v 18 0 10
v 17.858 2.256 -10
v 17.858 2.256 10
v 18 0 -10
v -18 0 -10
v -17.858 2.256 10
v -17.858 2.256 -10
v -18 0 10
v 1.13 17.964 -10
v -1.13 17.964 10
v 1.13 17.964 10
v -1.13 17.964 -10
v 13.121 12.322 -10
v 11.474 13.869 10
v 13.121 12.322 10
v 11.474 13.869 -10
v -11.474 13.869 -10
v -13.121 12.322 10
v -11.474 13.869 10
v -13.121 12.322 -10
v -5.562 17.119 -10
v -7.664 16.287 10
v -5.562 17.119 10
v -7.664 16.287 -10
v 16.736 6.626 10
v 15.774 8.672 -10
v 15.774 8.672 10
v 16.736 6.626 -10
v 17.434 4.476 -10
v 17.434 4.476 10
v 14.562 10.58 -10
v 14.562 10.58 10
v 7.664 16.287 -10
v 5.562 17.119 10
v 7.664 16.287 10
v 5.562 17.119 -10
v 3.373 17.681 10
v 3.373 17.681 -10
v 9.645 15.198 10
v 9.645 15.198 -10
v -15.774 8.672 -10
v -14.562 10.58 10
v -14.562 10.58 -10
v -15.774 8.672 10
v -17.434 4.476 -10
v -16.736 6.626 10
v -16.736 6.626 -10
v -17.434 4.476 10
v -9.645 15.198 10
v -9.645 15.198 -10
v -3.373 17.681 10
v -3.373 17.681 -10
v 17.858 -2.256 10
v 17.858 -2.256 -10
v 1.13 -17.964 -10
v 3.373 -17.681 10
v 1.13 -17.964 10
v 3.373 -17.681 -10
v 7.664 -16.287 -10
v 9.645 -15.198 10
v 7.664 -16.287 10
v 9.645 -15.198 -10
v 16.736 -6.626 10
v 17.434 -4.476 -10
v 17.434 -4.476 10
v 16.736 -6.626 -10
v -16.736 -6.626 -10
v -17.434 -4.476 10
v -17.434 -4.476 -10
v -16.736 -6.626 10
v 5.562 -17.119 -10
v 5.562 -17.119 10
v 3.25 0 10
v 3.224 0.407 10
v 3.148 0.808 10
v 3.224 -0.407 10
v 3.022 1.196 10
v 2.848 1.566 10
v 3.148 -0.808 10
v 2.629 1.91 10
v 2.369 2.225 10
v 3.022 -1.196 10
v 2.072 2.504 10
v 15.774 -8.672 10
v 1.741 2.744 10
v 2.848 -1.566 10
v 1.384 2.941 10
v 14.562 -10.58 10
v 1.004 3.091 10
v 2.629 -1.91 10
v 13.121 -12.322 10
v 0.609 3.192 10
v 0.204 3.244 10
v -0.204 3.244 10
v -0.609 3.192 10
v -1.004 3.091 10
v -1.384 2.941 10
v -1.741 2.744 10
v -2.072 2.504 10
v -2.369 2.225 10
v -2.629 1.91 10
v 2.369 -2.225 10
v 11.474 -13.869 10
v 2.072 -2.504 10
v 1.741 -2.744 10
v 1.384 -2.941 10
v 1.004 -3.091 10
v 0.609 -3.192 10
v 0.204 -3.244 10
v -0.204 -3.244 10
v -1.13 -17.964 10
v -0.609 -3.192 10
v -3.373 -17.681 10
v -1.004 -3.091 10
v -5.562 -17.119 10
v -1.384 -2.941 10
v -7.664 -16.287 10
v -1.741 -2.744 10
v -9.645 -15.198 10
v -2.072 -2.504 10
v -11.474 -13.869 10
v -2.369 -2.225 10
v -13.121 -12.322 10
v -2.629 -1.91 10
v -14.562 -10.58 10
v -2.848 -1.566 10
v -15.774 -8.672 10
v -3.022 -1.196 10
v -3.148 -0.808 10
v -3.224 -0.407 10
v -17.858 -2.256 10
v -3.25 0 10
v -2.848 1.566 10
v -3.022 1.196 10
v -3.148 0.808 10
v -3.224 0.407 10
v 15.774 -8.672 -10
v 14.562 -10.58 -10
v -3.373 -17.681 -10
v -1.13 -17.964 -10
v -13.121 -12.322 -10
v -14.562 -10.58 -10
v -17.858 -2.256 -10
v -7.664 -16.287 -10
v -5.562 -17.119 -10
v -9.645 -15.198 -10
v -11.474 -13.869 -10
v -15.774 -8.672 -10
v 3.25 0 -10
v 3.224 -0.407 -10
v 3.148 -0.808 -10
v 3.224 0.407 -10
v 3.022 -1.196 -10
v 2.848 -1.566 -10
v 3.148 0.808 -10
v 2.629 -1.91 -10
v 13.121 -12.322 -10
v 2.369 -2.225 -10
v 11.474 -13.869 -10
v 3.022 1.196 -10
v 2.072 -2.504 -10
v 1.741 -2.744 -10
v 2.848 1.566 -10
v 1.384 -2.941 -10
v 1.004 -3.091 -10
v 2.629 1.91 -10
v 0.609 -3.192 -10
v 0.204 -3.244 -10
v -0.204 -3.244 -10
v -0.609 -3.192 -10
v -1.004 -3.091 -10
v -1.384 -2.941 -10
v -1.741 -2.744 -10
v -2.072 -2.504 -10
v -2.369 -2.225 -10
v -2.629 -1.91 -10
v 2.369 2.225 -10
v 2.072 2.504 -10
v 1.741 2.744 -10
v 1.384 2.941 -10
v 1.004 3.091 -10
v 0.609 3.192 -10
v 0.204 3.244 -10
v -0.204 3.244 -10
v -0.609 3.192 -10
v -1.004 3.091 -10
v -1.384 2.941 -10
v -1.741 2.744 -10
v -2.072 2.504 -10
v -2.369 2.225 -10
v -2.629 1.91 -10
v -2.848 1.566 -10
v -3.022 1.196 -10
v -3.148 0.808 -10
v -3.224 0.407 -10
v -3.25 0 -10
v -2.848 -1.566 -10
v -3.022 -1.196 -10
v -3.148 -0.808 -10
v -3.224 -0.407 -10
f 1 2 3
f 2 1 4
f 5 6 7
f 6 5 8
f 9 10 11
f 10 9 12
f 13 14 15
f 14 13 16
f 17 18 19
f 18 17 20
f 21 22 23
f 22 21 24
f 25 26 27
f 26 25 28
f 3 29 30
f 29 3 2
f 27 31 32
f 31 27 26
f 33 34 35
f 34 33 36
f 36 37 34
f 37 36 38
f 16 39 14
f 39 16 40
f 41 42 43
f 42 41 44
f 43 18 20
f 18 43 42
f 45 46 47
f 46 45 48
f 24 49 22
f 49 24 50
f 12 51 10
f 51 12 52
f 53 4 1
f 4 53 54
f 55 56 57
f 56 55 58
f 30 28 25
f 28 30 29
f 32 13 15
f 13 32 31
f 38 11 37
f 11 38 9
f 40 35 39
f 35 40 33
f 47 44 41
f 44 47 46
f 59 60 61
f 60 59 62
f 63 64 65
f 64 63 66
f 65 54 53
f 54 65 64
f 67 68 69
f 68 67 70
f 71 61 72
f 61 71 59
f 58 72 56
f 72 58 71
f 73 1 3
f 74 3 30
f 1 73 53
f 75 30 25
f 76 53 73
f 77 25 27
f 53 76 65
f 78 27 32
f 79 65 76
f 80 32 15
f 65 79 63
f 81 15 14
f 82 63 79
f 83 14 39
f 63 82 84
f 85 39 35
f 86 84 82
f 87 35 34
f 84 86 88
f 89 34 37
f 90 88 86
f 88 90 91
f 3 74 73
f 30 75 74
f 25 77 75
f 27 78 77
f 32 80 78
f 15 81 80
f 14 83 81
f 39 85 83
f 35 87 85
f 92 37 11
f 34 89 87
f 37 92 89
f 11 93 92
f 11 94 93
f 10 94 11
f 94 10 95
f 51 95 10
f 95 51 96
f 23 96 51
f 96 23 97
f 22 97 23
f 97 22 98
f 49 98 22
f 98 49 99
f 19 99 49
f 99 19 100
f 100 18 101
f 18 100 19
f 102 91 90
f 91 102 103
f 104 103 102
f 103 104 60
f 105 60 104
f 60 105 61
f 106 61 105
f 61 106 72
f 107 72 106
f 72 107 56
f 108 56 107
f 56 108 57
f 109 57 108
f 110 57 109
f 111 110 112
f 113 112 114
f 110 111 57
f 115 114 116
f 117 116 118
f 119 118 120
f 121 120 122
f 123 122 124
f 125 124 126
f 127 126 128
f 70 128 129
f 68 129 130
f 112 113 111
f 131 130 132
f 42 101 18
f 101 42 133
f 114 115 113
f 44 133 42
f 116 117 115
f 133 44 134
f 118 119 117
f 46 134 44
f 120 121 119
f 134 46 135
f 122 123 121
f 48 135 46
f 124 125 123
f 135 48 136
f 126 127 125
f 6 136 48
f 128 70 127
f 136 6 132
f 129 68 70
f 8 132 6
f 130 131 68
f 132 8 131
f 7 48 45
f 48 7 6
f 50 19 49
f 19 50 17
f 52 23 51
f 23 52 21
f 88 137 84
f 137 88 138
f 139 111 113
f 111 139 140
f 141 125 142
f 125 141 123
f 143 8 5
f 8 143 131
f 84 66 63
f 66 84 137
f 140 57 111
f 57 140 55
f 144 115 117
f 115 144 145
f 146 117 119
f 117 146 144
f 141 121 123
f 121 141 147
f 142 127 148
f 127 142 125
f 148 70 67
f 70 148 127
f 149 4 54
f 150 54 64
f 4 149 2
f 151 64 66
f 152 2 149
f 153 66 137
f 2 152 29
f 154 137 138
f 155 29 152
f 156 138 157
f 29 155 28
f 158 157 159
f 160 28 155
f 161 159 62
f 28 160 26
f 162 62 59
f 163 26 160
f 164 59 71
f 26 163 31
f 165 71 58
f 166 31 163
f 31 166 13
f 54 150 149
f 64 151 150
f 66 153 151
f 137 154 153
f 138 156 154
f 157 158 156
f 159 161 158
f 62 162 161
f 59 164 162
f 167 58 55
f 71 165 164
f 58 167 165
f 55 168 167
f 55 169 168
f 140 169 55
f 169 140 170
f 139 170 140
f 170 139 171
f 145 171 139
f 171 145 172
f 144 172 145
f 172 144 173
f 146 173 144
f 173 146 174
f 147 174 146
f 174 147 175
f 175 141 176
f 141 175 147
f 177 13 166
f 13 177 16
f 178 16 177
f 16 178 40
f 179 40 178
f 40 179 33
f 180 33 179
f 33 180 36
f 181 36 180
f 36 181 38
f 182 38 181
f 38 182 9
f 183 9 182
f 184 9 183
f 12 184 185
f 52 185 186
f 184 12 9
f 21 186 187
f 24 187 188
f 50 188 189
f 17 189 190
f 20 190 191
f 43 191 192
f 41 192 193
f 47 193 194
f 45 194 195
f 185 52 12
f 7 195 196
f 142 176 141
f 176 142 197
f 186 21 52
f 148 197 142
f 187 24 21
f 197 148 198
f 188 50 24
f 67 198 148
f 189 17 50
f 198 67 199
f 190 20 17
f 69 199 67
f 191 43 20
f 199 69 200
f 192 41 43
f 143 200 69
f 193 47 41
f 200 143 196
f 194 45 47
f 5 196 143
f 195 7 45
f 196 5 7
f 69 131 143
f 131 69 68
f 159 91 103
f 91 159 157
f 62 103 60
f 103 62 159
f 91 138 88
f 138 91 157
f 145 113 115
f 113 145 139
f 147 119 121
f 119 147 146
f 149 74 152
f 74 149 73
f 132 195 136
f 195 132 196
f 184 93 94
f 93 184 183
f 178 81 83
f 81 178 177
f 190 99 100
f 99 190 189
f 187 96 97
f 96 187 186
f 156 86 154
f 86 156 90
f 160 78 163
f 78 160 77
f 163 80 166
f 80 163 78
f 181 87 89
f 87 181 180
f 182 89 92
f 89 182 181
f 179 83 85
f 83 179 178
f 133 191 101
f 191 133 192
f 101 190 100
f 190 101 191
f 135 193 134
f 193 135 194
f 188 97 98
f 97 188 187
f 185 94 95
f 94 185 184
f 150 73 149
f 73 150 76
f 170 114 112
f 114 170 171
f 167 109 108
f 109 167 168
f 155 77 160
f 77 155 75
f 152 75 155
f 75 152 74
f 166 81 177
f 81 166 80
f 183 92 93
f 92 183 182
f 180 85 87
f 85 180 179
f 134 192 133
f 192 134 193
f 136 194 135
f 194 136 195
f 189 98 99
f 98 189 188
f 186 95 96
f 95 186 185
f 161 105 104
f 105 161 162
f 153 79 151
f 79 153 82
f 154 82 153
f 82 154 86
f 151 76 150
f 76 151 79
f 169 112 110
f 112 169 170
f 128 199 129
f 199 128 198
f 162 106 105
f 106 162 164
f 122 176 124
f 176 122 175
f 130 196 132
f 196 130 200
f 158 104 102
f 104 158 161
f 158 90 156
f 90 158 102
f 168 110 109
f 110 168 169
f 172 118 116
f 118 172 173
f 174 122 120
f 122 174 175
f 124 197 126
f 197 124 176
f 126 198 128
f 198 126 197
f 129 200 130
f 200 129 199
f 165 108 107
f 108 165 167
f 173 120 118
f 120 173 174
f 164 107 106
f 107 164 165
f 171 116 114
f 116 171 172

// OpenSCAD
$fn = 50;


difference() {
	union() {
		translate(v = [0, 0, -10.0000000000]) {
			cylinder(h = 20, r = 18.0000000000);
		}
	}
	union() {
		translate(v = [0, 0, -100.0000000000]) {
			cylinder(h = 200, r = 3.2500000000);
		}
	}
}
